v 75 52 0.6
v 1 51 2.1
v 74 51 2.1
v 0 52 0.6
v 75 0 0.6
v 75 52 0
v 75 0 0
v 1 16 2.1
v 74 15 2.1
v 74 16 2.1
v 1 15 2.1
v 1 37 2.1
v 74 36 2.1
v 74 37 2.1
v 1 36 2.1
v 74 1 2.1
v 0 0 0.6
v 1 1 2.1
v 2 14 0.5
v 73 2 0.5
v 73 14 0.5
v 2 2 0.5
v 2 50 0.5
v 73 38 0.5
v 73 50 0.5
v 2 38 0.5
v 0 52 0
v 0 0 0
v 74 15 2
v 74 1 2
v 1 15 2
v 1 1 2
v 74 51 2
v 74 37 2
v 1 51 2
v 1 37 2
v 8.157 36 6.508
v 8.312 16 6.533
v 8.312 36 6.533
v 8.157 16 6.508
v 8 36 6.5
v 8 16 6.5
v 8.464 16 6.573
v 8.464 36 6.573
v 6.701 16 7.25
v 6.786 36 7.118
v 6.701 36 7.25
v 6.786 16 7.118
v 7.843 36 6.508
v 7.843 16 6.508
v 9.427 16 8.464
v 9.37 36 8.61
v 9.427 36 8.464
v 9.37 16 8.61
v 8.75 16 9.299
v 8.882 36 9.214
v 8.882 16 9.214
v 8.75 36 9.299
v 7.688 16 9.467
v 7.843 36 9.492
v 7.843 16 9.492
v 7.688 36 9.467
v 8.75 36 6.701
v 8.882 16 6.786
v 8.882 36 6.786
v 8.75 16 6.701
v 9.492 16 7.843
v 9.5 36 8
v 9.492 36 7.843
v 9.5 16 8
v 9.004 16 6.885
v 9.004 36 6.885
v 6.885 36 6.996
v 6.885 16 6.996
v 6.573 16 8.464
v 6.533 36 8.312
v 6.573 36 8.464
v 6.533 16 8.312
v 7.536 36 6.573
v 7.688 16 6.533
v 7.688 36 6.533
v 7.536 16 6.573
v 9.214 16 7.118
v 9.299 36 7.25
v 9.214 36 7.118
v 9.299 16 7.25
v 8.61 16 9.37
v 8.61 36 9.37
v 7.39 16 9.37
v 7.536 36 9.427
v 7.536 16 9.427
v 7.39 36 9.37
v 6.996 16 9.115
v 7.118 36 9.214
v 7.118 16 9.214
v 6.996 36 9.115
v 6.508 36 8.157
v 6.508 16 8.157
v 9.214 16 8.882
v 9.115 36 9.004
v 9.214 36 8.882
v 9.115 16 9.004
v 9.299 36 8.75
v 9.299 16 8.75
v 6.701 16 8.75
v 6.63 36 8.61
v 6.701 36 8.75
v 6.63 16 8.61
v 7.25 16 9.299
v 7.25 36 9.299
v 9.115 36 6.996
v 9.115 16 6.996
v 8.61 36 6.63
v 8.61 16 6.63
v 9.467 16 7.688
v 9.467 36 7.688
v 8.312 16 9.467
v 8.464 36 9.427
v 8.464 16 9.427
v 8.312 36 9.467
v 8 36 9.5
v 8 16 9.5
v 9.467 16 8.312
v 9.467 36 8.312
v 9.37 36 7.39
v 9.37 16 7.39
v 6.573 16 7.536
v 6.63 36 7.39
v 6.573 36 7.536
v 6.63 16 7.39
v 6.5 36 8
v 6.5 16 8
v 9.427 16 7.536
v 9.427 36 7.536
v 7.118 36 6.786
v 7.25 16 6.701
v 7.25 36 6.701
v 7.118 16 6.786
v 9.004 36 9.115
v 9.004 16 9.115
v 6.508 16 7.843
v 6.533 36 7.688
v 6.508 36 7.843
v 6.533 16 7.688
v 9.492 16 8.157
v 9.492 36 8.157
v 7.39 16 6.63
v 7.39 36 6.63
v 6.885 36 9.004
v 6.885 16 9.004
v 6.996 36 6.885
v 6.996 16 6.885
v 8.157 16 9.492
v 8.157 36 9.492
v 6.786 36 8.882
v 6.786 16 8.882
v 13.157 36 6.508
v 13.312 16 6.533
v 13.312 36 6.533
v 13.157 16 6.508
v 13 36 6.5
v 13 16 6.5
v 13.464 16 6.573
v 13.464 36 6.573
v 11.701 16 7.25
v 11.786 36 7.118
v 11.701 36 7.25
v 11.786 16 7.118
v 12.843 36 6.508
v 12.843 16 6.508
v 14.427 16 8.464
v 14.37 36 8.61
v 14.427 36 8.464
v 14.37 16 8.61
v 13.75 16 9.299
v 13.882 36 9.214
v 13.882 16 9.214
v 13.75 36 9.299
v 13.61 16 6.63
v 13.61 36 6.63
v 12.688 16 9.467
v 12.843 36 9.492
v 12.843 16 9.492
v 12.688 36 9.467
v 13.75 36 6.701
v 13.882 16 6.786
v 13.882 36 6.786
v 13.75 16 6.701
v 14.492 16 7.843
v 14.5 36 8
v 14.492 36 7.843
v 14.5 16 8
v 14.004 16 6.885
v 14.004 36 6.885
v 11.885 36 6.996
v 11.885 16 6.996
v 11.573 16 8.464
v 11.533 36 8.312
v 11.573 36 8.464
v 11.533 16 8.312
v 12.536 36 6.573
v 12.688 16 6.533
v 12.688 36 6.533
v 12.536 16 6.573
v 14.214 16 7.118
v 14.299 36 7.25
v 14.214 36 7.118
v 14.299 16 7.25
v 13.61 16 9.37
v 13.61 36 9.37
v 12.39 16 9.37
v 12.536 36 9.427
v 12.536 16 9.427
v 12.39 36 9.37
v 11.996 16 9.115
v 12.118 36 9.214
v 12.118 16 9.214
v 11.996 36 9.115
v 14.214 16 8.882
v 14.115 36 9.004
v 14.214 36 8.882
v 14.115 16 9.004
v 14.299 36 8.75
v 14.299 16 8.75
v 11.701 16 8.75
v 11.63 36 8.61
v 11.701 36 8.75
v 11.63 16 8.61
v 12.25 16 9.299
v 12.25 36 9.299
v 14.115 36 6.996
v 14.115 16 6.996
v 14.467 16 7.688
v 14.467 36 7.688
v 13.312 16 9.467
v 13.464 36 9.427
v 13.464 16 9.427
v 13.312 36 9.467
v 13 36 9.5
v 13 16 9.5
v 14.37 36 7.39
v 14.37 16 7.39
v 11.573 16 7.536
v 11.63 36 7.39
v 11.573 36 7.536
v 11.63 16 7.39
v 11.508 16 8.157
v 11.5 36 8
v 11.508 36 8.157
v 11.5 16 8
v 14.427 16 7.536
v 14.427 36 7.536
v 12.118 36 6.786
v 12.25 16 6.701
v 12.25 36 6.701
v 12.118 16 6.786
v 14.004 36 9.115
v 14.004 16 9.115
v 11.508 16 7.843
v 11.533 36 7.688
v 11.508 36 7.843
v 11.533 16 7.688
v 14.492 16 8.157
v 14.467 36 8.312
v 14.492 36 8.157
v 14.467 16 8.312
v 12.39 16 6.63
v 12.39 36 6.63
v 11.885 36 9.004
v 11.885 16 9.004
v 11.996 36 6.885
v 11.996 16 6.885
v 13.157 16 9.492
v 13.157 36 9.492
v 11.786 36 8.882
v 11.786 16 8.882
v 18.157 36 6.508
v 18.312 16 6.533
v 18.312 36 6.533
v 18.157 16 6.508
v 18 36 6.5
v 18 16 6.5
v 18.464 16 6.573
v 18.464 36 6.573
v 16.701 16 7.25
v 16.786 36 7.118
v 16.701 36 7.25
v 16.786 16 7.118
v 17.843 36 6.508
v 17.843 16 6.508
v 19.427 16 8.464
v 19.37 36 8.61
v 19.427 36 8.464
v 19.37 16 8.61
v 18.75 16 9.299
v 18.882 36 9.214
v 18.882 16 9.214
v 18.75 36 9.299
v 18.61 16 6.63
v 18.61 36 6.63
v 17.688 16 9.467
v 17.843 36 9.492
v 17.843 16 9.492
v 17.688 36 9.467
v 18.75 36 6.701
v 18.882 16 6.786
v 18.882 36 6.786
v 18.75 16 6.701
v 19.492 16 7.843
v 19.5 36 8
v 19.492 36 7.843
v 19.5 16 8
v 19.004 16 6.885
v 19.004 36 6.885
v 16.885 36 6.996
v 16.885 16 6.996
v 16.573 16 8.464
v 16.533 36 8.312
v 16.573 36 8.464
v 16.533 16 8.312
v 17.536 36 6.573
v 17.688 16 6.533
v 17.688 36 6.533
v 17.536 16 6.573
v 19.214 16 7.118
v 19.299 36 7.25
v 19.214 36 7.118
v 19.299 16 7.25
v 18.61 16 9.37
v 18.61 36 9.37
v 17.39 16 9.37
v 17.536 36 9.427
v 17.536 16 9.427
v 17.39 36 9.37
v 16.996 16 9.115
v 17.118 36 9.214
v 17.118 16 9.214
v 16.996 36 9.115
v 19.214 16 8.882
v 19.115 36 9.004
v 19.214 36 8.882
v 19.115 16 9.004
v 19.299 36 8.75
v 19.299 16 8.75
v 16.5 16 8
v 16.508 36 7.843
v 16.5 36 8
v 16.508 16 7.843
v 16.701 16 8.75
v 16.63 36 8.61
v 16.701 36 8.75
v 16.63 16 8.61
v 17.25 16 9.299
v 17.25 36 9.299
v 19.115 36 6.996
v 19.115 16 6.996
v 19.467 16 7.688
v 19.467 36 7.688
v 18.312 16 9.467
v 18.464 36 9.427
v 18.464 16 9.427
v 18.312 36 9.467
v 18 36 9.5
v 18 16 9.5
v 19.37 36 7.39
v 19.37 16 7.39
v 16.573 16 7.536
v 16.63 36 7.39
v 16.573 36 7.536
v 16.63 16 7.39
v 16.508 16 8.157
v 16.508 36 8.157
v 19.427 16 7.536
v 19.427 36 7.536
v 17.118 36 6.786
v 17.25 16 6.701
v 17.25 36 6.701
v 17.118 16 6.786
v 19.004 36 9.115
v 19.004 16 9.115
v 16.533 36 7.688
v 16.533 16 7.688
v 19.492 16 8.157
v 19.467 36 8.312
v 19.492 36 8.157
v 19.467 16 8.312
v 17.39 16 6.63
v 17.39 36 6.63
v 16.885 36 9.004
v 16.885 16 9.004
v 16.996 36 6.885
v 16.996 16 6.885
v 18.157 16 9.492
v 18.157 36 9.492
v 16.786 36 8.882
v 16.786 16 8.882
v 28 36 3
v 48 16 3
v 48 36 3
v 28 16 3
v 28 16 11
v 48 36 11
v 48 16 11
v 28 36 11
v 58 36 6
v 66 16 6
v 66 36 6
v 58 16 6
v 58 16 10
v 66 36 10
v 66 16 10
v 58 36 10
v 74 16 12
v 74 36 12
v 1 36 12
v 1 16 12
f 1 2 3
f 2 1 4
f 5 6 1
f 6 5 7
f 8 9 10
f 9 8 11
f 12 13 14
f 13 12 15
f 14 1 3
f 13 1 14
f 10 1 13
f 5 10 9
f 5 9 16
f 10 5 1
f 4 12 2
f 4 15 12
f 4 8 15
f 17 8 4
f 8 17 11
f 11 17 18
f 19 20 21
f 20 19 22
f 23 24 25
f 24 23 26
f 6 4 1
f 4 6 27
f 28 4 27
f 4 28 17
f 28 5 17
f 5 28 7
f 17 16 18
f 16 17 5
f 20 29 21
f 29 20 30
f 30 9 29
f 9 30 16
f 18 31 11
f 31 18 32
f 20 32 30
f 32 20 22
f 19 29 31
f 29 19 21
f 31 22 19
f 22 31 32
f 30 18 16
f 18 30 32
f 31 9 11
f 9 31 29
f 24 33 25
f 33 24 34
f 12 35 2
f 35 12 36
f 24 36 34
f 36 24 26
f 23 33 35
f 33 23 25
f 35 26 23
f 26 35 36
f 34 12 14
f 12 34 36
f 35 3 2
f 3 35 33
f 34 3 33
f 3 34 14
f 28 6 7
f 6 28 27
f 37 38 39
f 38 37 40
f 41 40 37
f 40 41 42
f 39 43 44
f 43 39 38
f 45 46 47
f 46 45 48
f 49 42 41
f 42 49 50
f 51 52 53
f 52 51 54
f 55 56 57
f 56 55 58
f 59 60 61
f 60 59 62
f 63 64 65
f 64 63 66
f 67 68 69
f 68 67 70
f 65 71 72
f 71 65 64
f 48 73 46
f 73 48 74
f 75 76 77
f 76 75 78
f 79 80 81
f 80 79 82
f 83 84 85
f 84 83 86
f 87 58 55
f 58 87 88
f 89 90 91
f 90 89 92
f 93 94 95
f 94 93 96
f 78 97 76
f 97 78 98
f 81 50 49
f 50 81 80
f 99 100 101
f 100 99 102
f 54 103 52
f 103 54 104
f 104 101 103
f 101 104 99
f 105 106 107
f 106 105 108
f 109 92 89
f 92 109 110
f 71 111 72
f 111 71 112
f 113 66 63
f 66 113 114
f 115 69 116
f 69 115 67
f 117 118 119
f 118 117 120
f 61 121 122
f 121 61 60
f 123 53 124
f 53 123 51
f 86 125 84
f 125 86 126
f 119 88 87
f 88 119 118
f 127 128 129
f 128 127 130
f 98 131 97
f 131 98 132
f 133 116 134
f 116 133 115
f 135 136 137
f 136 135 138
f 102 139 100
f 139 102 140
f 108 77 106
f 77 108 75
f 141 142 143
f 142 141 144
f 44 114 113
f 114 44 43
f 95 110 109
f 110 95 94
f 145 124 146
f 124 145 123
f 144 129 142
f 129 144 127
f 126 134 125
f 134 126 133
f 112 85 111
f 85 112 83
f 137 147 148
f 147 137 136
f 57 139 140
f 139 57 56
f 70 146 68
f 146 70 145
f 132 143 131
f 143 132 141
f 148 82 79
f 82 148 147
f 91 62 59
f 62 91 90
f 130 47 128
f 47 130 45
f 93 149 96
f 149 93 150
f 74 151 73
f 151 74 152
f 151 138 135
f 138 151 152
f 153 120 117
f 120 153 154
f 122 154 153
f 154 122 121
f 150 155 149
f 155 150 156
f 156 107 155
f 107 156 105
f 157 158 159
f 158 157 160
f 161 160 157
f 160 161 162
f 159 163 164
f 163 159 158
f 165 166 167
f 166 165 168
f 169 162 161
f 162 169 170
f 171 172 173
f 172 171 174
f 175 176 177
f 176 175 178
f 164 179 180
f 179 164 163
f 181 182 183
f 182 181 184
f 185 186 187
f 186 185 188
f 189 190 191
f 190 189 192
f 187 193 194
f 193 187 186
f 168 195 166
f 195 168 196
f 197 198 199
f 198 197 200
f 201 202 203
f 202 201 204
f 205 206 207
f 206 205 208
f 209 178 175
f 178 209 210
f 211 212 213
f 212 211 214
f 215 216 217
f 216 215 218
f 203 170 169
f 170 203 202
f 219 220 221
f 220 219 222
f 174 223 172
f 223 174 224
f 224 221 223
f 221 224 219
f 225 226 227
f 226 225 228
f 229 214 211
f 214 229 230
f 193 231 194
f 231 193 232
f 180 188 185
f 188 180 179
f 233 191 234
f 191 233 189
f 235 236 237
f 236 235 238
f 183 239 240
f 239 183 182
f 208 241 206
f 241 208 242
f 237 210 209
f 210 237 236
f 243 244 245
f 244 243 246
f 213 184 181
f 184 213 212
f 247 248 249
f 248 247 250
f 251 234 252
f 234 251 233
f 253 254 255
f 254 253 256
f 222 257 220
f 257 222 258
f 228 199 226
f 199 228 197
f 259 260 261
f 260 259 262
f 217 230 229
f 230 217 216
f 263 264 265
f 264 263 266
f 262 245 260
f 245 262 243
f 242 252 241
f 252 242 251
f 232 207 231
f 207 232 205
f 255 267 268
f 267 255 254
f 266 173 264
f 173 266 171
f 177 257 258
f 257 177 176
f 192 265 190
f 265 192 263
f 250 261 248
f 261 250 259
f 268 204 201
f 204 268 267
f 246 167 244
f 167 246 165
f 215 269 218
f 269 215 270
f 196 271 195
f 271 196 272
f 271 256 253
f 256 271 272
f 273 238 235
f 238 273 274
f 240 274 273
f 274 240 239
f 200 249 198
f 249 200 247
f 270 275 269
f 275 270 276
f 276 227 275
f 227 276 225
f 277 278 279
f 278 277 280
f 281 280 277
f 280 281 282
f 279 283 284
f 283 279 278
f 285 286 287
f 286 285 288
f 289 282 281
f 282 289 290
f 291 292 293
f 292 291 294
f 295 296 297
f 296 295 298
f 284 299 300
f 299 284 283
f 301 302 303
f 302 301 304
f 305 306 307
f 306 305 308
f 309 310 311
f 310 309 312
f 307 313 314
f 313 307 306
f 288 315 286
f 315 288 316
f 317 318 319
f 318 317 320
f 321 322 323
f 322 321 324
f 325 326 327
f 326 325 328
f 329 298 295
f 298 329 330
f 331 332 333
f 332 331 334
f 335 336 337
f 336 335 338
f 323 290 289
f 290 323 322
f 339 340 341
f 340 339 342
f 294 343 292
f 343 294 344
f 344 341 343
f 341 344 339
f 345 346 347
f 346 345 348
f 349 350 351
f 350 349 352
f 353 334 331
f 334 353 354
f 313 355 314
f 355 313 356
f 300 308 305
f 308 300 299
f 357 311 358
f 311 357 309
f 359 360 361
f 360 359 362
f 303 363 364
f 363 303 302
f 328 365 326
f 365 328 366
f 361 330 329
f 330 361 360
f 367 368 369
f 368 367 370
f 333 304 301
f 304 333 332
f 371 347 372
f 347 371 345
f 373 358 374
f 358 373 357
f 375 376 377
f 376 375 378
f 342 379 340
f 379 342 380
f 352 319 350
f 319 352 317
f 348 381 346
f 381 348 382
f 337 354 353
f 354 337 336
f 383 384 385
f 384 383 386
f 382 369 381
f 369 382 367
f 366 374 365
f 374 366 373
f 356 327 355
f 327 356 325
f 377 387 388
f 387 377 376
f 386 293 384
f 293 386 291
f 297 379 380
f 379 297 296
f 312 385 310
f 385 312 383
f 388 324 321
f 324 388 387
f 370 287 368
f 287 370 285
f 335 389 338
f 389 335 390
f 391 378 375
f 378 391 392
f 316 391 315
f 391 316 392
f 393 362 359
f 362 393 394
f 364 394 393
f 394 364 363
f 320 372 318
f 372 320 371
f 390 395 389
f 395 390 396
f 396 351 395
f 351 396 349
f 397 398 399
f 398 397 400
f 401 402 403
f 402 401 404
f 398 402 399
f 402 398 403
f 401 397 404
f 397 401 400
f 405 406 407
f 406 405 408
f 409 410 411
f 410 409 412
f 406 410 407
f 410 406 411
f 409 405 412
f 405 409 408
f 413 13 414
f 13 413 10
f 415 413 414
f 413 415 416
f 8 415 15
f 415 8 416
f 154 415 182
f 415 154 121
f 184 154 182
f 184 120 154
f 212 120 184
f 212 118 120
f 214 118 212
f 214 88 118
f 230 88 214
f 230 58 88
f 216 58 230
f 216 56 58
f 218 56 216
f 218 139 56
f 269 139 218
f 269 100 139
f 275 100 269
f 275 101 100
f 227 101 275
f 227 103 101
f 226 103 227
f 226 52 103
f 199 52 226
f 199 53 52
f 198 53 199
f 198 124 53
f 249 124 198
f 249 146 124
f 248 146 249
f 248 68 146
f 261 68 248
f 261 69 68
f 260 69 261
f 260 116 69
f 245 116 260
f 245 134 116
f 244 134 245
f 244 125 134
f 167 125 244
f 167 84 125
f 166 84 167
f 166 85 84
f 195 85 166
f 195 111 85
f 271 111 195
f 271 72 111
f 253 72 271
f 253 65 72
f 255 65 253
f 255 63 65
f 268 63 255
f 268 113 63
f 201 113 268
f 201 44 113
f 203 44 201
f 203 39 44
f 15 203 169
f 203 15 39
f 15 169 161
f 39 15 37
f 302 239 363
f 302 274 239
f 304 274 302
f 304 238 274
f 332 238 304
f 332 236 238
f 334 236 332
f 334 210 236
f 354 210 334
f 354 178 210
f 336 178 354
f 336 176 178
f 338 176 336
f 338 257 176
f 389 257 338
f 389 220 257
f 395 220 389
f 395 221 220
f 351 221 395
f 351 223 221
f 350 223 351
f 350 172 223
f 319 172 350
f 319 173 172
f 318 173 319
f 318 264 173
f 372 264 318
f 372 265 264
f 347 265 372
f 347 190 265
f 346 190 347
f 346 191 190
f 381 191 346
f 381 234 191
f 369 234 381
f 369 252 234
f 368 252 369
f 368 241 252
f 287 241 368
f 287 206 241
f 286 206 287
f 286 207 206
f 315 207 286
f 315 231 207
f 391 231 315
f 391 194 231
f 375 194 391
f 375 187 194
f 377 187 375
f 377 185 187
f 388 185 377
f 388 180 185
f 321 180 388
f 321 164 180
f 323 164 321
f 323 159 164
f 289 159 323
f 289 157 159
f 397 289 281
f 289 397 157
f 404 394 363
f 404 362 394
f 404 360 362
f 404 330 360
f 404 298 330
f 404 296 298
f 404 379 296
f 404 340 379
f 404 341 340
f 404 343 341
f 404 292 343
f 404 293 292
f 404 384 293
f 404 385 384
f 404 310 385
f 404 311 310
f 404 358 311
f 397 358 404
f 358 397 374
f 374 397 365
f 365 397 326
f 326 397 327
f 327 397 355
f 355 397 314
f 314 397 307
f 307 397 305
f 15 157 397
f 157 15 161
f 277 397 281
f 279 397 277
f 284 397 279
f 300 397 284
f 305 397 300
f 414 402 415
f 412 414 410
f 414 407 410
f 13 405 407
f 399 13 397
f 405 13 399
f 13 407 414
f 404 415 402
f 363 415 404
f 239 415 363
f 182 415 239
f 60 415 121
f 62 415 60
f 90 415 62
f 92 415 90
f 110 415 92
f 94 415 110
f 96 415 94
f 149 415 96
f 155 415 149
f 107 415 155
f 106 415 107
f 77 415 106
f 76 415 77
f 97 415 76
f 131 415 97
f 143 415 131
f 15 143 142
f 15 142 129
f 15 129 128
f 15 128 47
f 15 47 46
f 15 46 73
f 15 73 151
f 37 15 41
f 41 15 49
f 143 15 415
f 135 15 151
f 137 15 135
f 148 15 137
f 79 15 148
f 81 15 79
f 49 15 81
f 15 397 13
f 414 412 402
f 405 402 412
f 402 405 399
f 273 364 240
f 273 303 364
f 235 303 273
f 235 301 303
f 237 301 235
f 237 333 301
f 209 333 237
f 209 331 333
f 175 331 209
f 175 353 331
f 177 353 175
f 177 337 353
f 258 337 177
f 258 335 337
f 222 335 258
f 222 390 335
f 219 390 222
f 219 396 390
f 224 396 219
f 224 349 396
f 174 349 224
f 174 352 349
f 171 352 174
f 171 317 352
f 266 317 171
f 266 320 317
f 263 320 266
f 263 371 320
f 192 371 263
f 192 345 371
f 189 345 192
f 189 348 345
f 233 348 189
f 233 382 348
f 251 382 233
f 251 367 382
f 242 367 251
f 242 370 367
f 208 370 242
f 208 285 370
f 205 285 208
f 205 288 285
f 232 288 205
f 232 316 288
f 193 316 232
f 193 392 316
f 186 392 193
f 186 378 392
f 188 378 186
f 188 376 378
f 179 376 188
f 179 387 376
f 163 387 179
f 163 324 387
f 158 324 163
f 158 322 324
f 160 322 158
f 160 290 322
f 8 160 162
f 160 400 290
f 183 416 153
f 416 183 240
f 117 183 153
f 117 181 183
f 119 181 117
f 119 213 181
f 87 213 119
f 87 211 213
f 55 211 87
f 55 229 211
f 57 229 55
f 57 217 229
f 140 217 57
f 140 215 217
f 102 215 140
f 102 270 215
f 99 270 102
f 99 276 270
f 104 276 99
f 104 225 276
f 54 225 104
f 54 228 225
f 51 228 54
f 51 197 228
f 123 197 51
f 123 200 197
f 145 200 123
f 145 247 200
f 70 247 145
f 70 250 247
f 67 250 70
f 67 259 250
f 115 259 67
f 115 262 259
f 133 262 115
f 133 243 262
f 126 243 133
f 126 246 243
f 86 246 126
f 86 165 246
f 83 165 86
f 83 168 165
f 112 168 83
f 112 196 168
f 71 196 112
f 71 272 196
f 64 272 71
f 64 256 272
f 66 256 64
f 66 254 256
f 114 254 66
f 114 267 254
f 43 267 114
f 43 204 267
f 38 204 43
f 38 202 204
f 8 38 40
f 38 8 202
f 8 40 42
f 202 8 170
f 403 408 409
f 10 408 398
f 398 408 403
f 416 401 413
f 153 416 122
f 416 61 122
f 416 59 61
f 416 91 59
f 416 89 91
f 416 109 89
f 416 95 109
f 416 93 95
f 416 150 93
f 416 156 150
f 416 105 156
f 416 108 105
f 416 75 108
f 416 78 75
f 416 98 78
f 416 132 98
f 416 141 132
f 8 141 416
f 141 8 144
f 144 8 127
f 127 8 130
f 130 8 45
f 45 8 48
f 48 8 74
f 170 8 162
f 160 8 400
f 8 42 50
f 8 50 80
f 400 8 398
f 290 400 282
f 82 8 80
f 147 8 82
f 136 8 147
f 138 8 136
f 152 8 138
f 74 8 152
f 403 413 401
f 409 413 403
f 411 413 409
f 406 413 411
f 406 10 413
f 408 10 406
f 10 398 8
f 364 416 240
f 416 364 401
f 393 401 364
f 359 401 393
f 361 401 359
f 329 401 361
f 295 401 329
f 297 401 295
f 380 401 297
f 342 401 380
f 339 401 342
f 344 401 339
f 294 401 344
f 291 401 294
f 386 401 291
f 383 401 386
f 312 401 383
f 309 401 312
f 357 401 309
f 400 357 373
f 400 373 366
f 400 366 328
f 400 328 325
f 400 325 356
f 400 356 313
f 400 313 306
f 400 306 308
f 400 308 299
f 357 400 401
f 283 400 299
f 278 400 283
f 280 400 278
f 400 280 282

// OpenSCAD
echo(version=version());
// Base Config
base_W = 75;
base_H = 52;
base_T = 0.5;
default_T = 2.0;
default_S = 12;
$fn = 60;

staple_base(base_T,base_W,base_H,default_S,default_T);

translate([1, 16, default_T]) {
    difference() {
        cube([base_W - 2, 20, 10]);
        rotate([90, 90, 0]) {
            translate([-6, 7, -25]) cylinder(h = 30, r = 1.5);
            translate([-6, 12, -25]) cylinder(h = 30, r = 1.5);
            translate([-6, 17, -25]) cylinder(h = 30, r = 1.5);
            translate([-9, 27, -25]) cube([8, 20, 30]);
            translate([-8, 57, -25]) cube([4, 8, 30]);
        }
    }
}

module stapler_area(bt,bw,ds,dt) {
    hull() {
        translate([0, 0, dt - bt]) cube([bw - dt, ds + 2, 0.1]);
        translate([1, 1, 0]) cube([bw - dt * 2, ds, 0.1]);
    }
}

module staple_base(bt,bw,bh,ds,dt) {
    union() {
        // Base1(Bottom)
        cube([bw, bh, bt]);
        // Base2(Top)
        translate([0, 0, bt]) {
            difference() {
                // Base2_body
                hull() {
                    translate([1, 1, dt - bt]) cube([bw - 2, bh - 2, 0.1]);
                    translate([0, 0, 0]) cube([bw, bh, 0.1]);
                }
                // Base2_stapler_area1(Top)
                # translate([dt - 1, dt - 1, 0]) stapler_area(bt,bw,ds,dt);
                // Base2_stapler_area2(Bottom)
                # translate([dt - 1, bh - ds - dt - 1, 0]) stapler_area(bt,bw,ds,dt);
            }
        }
    }
}
